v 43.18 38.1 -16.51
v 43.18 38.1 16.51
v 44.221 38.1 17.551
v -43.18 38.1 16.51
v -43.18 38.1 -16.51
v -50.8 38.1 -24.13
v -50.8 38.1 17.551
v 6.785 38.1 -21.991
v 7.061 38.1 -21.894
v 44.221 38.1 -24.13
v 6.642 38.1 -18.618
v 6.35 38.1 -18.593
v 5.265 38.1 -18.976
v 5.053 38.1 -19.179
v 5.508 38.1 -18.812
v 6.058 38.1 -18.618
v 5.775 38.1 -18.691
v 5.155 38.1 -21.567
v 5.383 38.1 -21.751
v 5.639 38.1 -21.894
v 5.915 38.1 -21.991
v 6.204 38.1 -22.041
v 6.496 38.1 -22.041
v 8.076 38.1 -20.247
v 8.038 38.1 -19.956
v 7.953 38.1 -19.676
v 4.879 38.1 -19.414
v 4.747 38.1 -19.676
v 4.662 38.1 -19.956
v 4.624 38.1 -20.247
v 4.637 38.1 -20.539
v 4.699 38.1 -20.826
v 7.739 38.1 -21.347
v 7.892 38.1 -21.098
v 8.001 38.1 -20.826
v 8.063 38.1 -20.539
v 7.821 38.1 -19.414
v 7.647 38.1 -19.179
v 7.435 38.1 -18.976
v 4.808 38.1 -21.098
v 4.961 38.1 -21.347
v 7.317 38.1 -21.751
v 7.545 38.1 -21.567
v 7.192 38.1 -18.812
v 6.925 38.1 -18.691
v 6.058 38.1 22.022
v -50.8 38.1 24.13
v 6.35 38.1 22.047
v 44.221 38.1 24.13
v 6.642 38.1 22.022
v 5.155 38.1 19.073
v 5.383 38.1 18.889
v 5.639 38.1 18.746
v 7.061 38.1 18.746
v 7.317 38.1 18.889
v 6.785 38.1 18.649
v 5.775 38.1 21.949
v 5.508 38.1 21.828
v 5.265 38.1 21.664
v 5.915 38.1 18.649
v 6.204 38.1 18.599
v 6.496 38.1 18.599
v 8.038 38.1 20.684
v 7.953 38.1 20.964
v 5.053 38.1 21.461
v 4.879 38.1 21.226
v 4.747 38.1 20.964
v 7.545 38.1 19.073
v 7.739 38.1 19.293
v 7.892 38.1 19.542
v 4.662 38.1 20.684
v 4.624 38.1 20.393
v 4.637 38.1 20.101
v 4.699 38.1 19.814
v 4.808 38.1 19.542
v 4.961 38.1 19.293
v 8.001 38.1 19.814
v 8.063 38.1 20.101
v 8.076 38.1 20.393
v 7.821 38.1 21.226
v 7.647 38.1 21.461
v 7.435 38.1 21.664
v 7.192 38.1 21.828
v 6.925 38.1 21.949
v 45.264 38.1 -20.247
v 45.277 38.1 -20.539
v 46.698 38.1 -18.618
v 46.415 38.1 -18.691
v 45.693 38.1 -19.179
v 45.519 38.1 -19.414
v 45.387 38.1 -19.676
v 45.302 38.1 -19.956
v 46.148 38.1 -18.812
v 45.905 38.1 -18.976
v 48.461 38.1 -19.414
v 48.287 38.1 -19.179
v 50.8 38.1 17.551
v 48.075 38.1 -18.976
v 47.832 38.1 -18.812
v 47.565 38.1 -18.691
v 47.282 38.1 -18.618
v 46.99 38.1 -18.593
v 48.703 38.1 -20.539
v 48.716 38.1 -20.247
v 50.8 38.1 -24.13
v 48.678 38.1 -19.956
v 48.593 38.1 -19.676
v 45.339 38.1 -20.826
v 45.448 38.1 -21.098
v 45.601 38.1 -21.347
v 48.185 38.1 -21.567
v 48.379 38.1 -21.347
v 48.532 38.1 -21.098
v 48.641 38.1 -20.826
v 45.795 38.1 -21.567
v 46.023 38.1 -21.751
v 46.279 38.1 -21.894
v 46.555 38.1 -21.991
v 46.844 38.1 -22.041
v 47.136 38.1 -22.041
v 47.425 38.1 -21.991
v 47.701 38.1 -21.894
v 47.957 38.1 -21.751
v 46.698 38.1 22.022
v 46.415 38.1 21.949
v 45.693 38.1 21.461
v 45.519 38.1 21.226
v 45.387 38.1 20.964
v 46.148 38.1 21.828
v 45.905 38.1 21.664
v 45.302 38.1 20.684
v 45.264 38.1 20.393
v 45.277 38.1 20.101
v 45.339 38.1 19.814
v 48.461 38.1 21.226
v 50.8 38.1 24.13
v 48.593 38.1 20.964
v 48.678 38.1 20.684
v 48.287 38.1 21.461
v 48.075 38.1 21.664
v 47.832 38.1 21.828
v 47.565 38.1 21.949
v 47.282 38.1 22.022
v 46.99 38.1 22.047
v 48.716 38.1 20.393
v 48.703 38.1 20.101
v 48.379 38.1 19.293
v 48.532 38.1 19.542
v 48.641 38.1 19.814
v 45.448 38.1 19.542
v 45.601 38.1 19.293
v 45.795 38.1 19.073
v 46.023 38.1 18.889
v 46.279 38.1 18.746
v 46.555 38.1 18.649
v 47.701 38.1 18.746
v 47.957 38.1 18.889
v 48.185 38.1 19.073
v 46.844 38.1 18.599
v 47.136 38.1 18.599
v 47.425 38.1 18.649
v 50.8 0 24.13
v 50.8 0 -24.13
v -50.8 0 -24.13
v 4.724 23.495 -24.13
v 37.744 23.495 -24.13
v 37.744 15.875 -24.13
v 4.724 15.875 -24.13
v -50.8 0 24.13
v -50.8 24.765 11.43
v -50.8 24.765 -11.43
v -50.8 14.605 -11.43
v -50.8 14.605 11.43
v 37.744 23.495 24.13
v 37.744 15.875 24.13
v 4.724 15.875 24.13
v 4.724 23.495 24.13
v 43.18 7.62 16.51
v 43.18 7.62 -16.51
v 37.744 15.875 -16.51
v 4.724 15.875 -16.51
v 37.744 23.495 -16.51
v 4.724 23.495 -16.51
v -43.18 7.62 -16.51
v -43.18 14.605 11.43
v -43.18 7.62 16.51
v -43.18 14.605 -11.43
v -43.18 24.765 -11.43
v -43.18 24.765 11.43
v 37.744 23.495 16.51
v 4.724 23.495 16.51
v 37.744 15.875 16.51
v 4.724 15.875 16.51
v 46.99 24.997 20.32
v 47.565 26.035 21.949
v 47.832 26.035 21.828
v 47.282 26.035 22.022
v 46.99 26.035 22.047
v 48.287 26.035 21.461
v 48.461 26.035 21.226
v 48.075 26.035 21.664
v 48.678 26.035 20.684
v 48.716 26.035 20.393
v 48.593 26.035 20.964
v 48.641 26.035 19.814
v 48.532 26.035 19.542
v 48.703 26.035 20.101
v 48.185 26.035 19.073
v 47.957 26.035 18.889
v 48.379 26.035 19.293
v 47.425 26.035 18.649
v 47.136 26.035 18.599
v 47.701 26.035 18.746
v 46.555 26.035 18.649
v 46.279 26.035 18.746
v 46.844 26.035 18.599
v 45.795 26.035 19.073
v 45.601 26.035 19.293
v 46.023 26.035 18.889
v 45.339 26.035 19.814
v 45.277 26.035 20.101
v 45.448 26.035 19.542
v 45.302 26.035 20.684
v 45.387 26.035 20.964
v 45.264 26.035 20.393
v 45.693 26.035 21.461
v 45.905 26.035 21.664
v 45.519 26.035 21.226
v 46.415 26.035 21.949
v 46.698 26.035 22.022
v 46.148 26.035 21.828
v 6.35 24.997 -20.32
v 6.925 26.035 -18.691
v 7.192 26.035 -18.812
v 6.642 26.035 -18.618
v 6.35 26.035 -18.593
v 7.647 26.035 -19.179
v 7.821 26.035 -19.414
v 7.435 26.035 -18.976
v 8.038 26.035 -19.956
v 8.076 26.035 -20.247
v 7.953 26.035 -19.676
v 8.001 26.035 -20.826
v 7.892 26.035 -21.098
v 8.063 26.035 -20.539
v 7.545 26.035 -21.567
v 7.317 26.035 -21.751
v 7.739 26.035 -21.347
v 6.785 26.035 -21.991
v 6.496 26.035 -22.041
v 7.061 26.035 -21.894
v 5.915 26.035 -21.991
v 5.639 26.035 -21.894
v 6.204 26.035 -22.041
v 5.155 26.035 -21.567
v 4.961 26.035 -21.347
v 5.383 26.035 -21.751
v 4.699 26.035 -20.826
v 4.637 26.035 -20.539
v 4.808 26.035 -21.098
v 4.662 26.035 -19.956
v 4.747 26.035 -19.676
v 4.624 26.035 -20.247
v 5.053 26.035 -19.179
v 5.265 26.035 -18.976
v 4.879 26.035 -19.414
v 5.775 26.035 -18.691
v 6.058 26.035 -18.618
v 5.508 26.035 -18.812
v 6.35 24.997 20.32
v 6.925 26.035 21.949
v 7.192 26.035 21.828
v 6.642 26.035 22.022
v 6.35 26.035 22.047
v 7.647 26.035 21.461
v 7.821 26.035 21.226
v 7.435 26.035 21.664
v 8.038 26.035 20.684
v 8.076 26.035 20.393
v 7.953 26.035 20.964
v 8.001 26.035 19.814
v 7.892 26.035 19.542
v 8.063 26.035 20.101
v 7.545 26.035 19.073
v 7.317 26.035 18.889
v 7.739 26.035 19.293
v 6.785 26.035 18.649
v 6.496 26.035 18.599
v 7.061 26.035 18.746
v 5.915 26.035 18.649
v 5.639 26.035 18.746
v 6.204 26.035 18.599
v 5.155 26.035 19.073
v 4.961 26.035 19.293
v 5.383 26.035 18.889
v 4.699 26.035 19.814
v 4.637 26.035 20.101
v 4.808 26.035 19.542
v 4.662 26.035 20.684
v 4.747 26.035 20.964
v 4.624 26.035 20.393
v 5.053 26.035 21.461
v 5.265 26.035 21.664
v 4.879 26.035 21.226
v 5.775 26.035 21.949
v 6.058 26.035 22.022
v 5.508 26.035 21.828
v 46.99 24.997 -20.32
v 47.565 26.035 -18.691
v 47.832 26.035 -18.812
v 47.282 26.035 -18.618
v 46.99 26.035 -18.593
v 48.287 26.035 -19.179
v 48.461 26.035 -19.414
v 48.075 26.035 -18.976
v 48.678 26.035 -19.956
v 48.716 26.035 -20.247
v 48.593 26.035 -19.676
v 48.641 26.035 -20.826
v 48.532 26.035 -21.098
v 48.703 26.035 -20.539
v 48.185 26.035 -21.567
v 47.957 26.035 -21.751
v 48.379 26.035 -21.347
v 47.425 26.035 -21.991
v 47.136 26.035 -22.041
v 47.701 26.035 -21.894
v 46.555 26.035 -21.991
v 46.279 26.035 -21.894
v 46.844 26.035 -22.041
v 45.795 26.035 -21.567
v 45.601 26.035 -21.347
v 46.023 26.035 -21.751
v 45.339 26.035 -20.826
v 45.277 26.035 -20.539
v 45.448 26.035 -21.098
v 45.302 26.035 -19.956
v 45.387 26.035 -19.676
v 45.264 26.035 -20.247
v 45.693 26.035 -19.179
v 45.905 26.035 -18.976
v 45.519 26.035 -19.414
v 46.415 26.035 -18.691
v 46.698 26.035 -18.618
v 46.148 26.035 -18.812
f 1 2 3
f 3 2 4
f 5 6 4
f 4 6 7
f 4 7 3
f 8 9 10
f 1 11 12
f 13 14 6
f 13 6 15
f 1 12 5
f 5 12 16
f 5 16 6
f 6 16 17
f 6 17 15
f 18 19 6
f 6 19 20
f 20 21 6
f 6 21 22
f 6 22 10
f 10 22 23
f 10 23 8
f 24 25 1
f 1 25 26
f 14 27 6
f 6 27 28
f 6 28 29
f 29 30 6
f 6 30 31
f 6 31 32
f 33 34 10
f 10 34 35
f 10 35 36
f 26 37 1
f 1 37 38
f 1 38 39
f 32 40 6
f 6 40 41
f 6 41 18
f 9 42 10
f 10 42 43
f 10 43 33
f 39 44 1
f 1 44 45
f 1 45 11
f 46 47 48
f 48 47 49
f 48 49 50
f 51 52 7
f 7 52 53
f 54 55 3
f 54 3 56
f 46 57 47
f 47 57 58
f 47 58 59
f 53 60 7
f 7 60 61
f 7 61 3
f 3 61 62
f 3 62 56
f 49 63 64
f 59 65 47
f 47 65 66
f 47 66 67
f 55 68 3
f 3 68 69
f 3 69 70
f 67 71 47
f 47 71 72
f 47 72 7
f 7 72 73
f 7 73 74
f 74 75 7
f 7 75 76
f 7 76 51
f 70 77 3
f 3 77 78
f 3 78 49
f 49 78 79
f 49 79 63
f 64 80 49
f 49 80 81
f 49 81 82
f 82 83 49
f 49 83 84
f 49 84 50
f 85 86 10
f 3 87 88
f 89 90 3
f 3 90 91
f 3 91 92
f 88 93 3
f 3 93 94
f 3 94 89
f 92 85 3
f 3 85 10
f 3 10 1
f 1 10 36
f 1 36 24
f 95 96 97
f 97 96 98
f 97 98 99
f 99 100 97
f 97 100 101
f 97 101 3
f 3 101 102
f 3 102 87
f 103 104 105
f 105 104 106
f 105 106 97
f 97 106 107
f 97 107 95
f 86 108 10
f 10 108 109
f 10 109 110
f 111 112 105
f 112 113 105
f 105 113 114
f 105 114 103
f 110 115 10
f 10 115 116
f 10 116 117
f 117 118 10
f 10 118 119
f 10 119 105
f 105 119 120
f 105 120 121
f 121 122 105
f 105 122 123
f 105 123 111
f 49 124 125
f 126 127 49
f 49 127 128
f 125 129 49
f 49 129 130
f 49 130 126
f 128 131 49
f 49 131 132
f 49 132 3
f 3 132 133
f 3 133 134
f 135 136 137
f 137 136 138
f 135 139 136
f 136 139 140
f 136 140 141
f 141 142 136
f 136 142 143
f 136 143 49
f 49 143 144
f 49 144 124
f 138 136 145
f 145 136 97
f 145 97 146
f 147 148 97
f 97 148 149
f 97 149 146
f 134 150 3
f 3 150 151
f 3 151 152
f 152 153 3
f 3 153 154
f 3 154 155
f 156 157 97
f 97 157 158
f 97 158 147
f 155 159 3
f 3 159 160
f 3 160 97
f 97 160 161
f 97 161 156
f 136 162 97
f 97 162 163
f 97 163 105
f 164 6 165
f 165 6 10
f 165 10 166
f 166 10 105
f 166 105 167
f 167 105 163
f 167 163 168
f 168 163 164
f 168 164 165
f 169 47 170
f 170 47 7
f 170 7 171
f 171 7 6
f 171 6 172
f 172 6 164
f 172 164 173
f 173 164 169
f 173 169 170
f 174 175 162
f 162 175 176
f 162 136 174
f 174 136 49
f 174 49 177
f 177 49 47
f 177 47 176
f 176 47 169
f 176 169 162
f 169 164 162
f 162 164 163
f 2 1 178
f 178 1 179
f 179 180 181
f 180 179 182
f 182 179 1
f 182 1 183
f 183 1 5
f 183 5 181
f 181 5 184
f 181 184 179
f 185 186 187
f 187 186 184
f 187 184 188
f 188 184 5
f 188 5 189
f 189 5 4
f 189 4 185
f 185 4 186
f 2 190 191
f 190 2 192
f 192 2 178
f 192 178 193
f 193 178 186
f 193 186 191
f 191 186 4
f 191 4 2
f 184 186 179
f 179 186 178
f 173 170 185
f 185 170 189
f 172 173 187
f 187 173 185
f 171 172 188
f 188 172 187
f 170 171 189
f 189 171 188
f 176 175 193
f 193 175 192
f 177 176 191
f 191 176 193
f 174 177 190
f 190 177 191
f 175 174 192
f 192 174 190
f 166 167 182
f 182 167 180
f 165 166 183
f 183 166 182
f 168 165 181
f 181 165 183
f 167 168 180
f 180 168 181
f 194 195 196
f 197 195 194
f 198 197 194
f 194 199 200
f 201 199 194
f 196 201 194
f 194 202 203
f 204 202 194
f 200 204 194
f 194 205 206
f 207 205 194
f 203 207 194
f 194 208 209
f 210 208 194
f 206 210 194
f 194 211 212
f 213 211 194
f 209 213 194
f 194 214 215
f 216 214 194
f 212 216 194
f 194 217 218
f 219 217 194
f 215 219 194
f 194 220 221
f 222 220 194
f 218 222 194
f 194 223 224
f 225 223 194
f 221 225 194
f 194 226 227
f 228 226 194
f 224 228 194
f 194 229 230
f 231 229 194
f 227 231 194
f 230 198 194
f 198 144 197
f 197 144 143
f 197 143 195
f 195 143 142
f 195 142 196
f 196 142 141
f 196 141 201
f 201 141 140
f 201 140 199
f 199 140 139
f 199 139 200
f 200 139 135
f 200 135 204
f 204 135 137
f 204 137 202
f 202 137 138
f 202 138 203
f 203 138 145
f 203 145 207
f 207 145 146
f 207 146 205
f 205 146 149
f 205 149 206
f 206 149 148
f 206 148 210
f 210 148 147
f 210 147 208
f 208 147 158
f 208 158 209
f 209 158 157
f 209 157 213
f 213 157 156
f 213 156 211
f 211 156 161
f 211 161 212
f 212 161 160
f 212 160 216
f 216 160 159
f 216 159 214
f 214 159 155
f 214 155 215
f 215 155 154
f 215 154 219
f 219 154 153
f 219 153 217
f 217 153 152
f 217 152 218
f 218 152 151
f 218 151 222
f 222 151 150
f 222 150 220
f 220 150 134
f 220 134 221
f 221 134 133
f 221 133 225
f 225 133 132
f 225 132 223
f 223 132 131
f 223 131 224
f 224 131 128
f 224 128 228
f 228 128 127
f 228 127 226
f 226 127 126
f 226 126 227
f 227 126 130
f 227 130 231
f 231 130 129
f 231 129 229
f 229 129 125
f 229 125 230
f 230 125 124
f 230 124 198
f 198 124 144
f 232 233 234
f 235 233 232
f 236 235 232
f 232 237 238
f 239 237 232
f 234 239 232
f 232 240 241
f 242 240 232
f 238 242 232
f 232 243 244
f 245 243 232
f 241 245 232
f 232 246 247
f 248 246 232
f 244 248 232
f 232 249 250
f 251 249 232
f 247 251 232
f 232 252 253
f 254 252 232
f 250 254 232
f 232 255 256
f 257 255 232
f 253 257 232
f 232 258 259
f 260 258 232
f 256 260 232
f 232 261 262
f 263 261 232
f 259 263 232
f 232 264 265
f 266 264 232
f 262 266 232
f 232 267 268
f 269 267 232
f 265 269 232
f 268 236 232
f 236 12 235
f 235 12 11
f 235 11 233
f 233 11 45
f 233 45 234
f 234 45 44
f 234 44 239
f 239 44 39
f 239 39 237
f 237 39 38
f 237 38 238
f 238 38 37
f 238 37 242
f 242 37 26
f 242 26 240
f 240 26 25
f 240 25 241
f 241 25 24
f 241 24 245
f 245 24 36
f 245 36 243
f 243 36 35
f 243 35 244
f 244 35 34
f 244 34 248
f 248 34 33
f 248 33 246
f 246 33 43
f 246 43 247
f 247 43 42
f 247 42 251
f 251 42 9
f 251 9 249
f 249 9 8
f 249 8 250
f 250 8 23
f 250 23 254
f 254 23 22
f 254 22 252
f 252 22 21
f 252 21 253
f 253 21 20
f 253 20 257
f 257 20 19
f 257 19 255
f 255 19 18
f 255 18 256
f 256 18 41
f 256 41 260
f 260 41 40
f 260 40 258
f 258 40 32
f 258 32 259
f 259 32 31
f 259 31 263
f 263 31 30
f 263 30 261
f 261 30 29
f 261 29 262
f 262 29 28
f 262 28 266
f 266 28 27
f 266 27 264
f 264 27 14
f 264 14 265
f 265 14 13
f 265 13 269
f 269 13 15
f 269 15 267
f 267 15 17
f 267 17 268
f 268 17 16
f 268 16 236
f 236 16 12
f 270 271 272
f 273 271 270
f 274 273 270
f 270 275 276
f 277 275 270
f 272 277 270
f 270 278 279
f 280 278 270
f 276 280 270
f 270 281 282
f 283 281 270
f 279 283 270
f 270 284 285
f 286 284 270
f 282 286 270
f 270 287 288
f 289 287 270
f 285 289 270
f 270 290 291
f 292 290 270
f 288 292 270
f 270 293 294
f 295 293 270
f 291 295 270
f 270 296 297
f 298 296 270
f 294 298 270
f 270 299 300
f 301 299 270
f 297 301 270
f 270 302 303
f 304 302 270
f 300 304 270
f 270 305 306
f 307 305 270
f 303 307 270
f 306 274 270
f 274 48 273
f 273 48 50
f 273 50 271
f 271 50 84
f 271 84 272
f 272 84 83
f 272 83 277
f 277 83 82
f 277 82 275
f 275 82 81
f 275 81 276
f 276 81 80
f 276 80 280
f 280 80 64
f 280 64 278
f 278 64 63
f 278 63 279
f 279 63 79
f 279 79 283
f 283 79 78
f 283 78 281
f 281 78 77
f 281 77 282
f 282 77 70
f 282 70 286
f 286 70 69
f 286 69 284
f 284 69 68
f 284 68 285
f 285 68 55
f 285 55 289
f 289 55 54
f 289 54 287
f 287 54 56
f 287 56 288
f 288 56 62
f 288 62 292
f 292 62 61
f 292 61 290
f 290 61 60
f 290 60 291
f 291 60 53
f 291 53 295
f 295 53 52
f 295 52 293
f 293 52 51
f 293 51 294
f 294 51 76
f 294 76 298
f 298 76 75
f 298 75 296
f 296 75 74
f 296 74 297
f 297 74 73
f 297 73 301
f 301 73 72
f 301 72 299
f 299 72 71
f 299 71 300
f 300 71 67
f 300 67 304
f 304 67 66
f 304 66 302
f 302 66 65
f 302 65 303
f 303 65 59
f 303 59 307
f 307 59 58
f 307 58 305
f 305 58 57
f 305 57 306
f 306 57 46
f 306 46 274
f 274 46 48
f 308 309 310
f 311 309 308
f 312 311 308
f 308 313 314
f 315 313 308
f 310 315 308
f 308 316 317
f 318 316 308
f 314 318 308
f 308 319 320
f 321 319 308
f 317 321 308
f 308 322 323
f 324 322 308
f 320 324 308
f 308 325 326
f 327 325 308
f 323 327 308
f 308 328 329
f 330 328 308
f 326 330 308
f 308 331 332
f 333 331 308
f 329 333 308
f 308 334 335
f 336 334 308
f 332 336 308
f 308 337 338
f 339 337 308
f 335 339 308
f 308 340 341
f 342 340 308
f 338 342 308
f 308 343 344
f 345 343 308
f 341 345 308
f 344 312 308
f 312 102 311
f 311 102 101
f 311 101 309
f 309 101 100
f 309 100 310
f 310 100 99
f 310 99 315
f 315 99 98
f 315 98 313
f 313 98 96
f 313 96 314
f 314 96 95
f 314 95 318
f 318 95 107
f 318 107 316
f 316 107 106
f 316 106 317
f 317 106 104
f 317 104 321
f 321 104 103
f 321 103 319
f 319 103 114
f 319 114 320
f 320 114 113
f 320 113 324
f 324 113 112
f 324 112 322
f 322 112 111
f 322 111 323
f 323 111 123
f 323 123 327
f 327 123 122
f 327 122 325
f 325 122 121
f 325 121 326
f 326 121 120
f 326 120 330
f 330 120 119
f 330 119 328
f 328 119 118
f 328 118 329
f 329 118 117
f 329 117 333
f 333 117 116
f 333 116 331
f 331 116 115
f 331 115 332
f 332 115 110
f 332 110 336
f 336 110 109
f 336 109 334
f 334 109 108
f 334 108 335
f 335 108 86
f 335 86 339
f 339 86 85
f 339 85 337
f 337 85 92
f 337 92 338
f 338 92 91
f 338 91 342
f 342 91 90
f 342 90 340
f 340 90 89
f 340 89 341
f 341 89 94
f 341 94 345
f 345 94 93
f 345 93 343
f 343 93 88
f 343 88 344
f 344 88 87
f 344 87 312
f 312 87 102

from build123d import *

# Parameters (mm, degrees)
SKETCH1_W                 = 101.6
SKETCH1_H                 = 48.26
BOSS_EXTRUDE1_DEPTH       = 38.1
SHELL1_T                  = -7.62
SKETCH4_W                 = 22.86
SKETCH4_H                 = 10.16
CUT_EXTRUDE1_DEPTH        = 38.1
SKETCH5_W                 = 33.02
SKETCH5_H                 = 7.62
CUT_EXTRUDE2_DEPTH        = 80.757617818
F_8_32_TAPPED_HOLE1_D     = 3.4544
F_8_32_TAPPED_HOLE1_DEPTH = 12.065
F_8_32_TAPPED_HOLE1_TIP   = 1.037806461


with BuildPart() as part:
    # Sketch1 → Boss-Extrude1 (new body)
    with BuildSketch(Plane(origin=(0, 0, 0), x_dir=(1, 0, 0), z_dir=(0, 1, 0))):
        Rectangle(SKETCH1_W, SKETCH1_H)
    extrude(amount=BOSS_EXTRUDE1_DEPTH)

    # Shell1
    shell1_openings = [part.faces().sort_by_distance(p)[0] for p in [
        (0, 38.1, 0),
    ]]
    offset(amount=SHELL1_T, openings=shell1_openings, kind=Kind.INTERSECTION)

    # Sketch4 → Cut-Extrude1 (cut)
    with BuildSketch(Plane.ZY.offset(50.8)):
        with Locations((0, 19.685)):
            Rectangle(SKETCH4_W, SKETCH4_H)
    extrude(amount=-CUT_EXTRUDE1_DEPTH, mode=Mode.SUBTRACT)

    # Sketch5 → Cut-Extrude2 (cut, through all)
    with BuildSketch(Plane(origin=(0, 0, -24.13), x_dir=(-1, 0, 0), z_dir=(0, 0, -1))):
        with Locations((-21.234297506, 19.685)):
            Rectangle(SKETCH5_W, SKETCH5_H)
    extrude(amount=-CUT_EXTRUDE2_DEPTH, mode=Mode.SUBTRACT)

    # #8-32 Tapped Hole1
    with Locations(Plane(origin=(0, 38.1, 0), x_dir=(1, 0, 0), z_dir=(0, 1, 0))):
        with Locations((46.99, -20.32), (26.67, 0), (46.99, 20.32), (6.35, -20.32), (6.35, 20.32)):
            Hole(F_8_32_TAPPED_HOLE1_D / 2, depth=F_8_32_TAPPED_HOLE1_DEPTH)
            with Locations((0, 0, -(F_8_32_TAPPED_HOLE1_DEPTH + F_8_32_TAPPED_HOLE1_TIP / 2))):  # 118° drill point
                Cone(0, F_8_32_TAPPED_HOLE1_D / 2, F_8_32_TAPPED_HOLE1_TIP, mode=Mode.SUBTRACT)


solid = part.part
